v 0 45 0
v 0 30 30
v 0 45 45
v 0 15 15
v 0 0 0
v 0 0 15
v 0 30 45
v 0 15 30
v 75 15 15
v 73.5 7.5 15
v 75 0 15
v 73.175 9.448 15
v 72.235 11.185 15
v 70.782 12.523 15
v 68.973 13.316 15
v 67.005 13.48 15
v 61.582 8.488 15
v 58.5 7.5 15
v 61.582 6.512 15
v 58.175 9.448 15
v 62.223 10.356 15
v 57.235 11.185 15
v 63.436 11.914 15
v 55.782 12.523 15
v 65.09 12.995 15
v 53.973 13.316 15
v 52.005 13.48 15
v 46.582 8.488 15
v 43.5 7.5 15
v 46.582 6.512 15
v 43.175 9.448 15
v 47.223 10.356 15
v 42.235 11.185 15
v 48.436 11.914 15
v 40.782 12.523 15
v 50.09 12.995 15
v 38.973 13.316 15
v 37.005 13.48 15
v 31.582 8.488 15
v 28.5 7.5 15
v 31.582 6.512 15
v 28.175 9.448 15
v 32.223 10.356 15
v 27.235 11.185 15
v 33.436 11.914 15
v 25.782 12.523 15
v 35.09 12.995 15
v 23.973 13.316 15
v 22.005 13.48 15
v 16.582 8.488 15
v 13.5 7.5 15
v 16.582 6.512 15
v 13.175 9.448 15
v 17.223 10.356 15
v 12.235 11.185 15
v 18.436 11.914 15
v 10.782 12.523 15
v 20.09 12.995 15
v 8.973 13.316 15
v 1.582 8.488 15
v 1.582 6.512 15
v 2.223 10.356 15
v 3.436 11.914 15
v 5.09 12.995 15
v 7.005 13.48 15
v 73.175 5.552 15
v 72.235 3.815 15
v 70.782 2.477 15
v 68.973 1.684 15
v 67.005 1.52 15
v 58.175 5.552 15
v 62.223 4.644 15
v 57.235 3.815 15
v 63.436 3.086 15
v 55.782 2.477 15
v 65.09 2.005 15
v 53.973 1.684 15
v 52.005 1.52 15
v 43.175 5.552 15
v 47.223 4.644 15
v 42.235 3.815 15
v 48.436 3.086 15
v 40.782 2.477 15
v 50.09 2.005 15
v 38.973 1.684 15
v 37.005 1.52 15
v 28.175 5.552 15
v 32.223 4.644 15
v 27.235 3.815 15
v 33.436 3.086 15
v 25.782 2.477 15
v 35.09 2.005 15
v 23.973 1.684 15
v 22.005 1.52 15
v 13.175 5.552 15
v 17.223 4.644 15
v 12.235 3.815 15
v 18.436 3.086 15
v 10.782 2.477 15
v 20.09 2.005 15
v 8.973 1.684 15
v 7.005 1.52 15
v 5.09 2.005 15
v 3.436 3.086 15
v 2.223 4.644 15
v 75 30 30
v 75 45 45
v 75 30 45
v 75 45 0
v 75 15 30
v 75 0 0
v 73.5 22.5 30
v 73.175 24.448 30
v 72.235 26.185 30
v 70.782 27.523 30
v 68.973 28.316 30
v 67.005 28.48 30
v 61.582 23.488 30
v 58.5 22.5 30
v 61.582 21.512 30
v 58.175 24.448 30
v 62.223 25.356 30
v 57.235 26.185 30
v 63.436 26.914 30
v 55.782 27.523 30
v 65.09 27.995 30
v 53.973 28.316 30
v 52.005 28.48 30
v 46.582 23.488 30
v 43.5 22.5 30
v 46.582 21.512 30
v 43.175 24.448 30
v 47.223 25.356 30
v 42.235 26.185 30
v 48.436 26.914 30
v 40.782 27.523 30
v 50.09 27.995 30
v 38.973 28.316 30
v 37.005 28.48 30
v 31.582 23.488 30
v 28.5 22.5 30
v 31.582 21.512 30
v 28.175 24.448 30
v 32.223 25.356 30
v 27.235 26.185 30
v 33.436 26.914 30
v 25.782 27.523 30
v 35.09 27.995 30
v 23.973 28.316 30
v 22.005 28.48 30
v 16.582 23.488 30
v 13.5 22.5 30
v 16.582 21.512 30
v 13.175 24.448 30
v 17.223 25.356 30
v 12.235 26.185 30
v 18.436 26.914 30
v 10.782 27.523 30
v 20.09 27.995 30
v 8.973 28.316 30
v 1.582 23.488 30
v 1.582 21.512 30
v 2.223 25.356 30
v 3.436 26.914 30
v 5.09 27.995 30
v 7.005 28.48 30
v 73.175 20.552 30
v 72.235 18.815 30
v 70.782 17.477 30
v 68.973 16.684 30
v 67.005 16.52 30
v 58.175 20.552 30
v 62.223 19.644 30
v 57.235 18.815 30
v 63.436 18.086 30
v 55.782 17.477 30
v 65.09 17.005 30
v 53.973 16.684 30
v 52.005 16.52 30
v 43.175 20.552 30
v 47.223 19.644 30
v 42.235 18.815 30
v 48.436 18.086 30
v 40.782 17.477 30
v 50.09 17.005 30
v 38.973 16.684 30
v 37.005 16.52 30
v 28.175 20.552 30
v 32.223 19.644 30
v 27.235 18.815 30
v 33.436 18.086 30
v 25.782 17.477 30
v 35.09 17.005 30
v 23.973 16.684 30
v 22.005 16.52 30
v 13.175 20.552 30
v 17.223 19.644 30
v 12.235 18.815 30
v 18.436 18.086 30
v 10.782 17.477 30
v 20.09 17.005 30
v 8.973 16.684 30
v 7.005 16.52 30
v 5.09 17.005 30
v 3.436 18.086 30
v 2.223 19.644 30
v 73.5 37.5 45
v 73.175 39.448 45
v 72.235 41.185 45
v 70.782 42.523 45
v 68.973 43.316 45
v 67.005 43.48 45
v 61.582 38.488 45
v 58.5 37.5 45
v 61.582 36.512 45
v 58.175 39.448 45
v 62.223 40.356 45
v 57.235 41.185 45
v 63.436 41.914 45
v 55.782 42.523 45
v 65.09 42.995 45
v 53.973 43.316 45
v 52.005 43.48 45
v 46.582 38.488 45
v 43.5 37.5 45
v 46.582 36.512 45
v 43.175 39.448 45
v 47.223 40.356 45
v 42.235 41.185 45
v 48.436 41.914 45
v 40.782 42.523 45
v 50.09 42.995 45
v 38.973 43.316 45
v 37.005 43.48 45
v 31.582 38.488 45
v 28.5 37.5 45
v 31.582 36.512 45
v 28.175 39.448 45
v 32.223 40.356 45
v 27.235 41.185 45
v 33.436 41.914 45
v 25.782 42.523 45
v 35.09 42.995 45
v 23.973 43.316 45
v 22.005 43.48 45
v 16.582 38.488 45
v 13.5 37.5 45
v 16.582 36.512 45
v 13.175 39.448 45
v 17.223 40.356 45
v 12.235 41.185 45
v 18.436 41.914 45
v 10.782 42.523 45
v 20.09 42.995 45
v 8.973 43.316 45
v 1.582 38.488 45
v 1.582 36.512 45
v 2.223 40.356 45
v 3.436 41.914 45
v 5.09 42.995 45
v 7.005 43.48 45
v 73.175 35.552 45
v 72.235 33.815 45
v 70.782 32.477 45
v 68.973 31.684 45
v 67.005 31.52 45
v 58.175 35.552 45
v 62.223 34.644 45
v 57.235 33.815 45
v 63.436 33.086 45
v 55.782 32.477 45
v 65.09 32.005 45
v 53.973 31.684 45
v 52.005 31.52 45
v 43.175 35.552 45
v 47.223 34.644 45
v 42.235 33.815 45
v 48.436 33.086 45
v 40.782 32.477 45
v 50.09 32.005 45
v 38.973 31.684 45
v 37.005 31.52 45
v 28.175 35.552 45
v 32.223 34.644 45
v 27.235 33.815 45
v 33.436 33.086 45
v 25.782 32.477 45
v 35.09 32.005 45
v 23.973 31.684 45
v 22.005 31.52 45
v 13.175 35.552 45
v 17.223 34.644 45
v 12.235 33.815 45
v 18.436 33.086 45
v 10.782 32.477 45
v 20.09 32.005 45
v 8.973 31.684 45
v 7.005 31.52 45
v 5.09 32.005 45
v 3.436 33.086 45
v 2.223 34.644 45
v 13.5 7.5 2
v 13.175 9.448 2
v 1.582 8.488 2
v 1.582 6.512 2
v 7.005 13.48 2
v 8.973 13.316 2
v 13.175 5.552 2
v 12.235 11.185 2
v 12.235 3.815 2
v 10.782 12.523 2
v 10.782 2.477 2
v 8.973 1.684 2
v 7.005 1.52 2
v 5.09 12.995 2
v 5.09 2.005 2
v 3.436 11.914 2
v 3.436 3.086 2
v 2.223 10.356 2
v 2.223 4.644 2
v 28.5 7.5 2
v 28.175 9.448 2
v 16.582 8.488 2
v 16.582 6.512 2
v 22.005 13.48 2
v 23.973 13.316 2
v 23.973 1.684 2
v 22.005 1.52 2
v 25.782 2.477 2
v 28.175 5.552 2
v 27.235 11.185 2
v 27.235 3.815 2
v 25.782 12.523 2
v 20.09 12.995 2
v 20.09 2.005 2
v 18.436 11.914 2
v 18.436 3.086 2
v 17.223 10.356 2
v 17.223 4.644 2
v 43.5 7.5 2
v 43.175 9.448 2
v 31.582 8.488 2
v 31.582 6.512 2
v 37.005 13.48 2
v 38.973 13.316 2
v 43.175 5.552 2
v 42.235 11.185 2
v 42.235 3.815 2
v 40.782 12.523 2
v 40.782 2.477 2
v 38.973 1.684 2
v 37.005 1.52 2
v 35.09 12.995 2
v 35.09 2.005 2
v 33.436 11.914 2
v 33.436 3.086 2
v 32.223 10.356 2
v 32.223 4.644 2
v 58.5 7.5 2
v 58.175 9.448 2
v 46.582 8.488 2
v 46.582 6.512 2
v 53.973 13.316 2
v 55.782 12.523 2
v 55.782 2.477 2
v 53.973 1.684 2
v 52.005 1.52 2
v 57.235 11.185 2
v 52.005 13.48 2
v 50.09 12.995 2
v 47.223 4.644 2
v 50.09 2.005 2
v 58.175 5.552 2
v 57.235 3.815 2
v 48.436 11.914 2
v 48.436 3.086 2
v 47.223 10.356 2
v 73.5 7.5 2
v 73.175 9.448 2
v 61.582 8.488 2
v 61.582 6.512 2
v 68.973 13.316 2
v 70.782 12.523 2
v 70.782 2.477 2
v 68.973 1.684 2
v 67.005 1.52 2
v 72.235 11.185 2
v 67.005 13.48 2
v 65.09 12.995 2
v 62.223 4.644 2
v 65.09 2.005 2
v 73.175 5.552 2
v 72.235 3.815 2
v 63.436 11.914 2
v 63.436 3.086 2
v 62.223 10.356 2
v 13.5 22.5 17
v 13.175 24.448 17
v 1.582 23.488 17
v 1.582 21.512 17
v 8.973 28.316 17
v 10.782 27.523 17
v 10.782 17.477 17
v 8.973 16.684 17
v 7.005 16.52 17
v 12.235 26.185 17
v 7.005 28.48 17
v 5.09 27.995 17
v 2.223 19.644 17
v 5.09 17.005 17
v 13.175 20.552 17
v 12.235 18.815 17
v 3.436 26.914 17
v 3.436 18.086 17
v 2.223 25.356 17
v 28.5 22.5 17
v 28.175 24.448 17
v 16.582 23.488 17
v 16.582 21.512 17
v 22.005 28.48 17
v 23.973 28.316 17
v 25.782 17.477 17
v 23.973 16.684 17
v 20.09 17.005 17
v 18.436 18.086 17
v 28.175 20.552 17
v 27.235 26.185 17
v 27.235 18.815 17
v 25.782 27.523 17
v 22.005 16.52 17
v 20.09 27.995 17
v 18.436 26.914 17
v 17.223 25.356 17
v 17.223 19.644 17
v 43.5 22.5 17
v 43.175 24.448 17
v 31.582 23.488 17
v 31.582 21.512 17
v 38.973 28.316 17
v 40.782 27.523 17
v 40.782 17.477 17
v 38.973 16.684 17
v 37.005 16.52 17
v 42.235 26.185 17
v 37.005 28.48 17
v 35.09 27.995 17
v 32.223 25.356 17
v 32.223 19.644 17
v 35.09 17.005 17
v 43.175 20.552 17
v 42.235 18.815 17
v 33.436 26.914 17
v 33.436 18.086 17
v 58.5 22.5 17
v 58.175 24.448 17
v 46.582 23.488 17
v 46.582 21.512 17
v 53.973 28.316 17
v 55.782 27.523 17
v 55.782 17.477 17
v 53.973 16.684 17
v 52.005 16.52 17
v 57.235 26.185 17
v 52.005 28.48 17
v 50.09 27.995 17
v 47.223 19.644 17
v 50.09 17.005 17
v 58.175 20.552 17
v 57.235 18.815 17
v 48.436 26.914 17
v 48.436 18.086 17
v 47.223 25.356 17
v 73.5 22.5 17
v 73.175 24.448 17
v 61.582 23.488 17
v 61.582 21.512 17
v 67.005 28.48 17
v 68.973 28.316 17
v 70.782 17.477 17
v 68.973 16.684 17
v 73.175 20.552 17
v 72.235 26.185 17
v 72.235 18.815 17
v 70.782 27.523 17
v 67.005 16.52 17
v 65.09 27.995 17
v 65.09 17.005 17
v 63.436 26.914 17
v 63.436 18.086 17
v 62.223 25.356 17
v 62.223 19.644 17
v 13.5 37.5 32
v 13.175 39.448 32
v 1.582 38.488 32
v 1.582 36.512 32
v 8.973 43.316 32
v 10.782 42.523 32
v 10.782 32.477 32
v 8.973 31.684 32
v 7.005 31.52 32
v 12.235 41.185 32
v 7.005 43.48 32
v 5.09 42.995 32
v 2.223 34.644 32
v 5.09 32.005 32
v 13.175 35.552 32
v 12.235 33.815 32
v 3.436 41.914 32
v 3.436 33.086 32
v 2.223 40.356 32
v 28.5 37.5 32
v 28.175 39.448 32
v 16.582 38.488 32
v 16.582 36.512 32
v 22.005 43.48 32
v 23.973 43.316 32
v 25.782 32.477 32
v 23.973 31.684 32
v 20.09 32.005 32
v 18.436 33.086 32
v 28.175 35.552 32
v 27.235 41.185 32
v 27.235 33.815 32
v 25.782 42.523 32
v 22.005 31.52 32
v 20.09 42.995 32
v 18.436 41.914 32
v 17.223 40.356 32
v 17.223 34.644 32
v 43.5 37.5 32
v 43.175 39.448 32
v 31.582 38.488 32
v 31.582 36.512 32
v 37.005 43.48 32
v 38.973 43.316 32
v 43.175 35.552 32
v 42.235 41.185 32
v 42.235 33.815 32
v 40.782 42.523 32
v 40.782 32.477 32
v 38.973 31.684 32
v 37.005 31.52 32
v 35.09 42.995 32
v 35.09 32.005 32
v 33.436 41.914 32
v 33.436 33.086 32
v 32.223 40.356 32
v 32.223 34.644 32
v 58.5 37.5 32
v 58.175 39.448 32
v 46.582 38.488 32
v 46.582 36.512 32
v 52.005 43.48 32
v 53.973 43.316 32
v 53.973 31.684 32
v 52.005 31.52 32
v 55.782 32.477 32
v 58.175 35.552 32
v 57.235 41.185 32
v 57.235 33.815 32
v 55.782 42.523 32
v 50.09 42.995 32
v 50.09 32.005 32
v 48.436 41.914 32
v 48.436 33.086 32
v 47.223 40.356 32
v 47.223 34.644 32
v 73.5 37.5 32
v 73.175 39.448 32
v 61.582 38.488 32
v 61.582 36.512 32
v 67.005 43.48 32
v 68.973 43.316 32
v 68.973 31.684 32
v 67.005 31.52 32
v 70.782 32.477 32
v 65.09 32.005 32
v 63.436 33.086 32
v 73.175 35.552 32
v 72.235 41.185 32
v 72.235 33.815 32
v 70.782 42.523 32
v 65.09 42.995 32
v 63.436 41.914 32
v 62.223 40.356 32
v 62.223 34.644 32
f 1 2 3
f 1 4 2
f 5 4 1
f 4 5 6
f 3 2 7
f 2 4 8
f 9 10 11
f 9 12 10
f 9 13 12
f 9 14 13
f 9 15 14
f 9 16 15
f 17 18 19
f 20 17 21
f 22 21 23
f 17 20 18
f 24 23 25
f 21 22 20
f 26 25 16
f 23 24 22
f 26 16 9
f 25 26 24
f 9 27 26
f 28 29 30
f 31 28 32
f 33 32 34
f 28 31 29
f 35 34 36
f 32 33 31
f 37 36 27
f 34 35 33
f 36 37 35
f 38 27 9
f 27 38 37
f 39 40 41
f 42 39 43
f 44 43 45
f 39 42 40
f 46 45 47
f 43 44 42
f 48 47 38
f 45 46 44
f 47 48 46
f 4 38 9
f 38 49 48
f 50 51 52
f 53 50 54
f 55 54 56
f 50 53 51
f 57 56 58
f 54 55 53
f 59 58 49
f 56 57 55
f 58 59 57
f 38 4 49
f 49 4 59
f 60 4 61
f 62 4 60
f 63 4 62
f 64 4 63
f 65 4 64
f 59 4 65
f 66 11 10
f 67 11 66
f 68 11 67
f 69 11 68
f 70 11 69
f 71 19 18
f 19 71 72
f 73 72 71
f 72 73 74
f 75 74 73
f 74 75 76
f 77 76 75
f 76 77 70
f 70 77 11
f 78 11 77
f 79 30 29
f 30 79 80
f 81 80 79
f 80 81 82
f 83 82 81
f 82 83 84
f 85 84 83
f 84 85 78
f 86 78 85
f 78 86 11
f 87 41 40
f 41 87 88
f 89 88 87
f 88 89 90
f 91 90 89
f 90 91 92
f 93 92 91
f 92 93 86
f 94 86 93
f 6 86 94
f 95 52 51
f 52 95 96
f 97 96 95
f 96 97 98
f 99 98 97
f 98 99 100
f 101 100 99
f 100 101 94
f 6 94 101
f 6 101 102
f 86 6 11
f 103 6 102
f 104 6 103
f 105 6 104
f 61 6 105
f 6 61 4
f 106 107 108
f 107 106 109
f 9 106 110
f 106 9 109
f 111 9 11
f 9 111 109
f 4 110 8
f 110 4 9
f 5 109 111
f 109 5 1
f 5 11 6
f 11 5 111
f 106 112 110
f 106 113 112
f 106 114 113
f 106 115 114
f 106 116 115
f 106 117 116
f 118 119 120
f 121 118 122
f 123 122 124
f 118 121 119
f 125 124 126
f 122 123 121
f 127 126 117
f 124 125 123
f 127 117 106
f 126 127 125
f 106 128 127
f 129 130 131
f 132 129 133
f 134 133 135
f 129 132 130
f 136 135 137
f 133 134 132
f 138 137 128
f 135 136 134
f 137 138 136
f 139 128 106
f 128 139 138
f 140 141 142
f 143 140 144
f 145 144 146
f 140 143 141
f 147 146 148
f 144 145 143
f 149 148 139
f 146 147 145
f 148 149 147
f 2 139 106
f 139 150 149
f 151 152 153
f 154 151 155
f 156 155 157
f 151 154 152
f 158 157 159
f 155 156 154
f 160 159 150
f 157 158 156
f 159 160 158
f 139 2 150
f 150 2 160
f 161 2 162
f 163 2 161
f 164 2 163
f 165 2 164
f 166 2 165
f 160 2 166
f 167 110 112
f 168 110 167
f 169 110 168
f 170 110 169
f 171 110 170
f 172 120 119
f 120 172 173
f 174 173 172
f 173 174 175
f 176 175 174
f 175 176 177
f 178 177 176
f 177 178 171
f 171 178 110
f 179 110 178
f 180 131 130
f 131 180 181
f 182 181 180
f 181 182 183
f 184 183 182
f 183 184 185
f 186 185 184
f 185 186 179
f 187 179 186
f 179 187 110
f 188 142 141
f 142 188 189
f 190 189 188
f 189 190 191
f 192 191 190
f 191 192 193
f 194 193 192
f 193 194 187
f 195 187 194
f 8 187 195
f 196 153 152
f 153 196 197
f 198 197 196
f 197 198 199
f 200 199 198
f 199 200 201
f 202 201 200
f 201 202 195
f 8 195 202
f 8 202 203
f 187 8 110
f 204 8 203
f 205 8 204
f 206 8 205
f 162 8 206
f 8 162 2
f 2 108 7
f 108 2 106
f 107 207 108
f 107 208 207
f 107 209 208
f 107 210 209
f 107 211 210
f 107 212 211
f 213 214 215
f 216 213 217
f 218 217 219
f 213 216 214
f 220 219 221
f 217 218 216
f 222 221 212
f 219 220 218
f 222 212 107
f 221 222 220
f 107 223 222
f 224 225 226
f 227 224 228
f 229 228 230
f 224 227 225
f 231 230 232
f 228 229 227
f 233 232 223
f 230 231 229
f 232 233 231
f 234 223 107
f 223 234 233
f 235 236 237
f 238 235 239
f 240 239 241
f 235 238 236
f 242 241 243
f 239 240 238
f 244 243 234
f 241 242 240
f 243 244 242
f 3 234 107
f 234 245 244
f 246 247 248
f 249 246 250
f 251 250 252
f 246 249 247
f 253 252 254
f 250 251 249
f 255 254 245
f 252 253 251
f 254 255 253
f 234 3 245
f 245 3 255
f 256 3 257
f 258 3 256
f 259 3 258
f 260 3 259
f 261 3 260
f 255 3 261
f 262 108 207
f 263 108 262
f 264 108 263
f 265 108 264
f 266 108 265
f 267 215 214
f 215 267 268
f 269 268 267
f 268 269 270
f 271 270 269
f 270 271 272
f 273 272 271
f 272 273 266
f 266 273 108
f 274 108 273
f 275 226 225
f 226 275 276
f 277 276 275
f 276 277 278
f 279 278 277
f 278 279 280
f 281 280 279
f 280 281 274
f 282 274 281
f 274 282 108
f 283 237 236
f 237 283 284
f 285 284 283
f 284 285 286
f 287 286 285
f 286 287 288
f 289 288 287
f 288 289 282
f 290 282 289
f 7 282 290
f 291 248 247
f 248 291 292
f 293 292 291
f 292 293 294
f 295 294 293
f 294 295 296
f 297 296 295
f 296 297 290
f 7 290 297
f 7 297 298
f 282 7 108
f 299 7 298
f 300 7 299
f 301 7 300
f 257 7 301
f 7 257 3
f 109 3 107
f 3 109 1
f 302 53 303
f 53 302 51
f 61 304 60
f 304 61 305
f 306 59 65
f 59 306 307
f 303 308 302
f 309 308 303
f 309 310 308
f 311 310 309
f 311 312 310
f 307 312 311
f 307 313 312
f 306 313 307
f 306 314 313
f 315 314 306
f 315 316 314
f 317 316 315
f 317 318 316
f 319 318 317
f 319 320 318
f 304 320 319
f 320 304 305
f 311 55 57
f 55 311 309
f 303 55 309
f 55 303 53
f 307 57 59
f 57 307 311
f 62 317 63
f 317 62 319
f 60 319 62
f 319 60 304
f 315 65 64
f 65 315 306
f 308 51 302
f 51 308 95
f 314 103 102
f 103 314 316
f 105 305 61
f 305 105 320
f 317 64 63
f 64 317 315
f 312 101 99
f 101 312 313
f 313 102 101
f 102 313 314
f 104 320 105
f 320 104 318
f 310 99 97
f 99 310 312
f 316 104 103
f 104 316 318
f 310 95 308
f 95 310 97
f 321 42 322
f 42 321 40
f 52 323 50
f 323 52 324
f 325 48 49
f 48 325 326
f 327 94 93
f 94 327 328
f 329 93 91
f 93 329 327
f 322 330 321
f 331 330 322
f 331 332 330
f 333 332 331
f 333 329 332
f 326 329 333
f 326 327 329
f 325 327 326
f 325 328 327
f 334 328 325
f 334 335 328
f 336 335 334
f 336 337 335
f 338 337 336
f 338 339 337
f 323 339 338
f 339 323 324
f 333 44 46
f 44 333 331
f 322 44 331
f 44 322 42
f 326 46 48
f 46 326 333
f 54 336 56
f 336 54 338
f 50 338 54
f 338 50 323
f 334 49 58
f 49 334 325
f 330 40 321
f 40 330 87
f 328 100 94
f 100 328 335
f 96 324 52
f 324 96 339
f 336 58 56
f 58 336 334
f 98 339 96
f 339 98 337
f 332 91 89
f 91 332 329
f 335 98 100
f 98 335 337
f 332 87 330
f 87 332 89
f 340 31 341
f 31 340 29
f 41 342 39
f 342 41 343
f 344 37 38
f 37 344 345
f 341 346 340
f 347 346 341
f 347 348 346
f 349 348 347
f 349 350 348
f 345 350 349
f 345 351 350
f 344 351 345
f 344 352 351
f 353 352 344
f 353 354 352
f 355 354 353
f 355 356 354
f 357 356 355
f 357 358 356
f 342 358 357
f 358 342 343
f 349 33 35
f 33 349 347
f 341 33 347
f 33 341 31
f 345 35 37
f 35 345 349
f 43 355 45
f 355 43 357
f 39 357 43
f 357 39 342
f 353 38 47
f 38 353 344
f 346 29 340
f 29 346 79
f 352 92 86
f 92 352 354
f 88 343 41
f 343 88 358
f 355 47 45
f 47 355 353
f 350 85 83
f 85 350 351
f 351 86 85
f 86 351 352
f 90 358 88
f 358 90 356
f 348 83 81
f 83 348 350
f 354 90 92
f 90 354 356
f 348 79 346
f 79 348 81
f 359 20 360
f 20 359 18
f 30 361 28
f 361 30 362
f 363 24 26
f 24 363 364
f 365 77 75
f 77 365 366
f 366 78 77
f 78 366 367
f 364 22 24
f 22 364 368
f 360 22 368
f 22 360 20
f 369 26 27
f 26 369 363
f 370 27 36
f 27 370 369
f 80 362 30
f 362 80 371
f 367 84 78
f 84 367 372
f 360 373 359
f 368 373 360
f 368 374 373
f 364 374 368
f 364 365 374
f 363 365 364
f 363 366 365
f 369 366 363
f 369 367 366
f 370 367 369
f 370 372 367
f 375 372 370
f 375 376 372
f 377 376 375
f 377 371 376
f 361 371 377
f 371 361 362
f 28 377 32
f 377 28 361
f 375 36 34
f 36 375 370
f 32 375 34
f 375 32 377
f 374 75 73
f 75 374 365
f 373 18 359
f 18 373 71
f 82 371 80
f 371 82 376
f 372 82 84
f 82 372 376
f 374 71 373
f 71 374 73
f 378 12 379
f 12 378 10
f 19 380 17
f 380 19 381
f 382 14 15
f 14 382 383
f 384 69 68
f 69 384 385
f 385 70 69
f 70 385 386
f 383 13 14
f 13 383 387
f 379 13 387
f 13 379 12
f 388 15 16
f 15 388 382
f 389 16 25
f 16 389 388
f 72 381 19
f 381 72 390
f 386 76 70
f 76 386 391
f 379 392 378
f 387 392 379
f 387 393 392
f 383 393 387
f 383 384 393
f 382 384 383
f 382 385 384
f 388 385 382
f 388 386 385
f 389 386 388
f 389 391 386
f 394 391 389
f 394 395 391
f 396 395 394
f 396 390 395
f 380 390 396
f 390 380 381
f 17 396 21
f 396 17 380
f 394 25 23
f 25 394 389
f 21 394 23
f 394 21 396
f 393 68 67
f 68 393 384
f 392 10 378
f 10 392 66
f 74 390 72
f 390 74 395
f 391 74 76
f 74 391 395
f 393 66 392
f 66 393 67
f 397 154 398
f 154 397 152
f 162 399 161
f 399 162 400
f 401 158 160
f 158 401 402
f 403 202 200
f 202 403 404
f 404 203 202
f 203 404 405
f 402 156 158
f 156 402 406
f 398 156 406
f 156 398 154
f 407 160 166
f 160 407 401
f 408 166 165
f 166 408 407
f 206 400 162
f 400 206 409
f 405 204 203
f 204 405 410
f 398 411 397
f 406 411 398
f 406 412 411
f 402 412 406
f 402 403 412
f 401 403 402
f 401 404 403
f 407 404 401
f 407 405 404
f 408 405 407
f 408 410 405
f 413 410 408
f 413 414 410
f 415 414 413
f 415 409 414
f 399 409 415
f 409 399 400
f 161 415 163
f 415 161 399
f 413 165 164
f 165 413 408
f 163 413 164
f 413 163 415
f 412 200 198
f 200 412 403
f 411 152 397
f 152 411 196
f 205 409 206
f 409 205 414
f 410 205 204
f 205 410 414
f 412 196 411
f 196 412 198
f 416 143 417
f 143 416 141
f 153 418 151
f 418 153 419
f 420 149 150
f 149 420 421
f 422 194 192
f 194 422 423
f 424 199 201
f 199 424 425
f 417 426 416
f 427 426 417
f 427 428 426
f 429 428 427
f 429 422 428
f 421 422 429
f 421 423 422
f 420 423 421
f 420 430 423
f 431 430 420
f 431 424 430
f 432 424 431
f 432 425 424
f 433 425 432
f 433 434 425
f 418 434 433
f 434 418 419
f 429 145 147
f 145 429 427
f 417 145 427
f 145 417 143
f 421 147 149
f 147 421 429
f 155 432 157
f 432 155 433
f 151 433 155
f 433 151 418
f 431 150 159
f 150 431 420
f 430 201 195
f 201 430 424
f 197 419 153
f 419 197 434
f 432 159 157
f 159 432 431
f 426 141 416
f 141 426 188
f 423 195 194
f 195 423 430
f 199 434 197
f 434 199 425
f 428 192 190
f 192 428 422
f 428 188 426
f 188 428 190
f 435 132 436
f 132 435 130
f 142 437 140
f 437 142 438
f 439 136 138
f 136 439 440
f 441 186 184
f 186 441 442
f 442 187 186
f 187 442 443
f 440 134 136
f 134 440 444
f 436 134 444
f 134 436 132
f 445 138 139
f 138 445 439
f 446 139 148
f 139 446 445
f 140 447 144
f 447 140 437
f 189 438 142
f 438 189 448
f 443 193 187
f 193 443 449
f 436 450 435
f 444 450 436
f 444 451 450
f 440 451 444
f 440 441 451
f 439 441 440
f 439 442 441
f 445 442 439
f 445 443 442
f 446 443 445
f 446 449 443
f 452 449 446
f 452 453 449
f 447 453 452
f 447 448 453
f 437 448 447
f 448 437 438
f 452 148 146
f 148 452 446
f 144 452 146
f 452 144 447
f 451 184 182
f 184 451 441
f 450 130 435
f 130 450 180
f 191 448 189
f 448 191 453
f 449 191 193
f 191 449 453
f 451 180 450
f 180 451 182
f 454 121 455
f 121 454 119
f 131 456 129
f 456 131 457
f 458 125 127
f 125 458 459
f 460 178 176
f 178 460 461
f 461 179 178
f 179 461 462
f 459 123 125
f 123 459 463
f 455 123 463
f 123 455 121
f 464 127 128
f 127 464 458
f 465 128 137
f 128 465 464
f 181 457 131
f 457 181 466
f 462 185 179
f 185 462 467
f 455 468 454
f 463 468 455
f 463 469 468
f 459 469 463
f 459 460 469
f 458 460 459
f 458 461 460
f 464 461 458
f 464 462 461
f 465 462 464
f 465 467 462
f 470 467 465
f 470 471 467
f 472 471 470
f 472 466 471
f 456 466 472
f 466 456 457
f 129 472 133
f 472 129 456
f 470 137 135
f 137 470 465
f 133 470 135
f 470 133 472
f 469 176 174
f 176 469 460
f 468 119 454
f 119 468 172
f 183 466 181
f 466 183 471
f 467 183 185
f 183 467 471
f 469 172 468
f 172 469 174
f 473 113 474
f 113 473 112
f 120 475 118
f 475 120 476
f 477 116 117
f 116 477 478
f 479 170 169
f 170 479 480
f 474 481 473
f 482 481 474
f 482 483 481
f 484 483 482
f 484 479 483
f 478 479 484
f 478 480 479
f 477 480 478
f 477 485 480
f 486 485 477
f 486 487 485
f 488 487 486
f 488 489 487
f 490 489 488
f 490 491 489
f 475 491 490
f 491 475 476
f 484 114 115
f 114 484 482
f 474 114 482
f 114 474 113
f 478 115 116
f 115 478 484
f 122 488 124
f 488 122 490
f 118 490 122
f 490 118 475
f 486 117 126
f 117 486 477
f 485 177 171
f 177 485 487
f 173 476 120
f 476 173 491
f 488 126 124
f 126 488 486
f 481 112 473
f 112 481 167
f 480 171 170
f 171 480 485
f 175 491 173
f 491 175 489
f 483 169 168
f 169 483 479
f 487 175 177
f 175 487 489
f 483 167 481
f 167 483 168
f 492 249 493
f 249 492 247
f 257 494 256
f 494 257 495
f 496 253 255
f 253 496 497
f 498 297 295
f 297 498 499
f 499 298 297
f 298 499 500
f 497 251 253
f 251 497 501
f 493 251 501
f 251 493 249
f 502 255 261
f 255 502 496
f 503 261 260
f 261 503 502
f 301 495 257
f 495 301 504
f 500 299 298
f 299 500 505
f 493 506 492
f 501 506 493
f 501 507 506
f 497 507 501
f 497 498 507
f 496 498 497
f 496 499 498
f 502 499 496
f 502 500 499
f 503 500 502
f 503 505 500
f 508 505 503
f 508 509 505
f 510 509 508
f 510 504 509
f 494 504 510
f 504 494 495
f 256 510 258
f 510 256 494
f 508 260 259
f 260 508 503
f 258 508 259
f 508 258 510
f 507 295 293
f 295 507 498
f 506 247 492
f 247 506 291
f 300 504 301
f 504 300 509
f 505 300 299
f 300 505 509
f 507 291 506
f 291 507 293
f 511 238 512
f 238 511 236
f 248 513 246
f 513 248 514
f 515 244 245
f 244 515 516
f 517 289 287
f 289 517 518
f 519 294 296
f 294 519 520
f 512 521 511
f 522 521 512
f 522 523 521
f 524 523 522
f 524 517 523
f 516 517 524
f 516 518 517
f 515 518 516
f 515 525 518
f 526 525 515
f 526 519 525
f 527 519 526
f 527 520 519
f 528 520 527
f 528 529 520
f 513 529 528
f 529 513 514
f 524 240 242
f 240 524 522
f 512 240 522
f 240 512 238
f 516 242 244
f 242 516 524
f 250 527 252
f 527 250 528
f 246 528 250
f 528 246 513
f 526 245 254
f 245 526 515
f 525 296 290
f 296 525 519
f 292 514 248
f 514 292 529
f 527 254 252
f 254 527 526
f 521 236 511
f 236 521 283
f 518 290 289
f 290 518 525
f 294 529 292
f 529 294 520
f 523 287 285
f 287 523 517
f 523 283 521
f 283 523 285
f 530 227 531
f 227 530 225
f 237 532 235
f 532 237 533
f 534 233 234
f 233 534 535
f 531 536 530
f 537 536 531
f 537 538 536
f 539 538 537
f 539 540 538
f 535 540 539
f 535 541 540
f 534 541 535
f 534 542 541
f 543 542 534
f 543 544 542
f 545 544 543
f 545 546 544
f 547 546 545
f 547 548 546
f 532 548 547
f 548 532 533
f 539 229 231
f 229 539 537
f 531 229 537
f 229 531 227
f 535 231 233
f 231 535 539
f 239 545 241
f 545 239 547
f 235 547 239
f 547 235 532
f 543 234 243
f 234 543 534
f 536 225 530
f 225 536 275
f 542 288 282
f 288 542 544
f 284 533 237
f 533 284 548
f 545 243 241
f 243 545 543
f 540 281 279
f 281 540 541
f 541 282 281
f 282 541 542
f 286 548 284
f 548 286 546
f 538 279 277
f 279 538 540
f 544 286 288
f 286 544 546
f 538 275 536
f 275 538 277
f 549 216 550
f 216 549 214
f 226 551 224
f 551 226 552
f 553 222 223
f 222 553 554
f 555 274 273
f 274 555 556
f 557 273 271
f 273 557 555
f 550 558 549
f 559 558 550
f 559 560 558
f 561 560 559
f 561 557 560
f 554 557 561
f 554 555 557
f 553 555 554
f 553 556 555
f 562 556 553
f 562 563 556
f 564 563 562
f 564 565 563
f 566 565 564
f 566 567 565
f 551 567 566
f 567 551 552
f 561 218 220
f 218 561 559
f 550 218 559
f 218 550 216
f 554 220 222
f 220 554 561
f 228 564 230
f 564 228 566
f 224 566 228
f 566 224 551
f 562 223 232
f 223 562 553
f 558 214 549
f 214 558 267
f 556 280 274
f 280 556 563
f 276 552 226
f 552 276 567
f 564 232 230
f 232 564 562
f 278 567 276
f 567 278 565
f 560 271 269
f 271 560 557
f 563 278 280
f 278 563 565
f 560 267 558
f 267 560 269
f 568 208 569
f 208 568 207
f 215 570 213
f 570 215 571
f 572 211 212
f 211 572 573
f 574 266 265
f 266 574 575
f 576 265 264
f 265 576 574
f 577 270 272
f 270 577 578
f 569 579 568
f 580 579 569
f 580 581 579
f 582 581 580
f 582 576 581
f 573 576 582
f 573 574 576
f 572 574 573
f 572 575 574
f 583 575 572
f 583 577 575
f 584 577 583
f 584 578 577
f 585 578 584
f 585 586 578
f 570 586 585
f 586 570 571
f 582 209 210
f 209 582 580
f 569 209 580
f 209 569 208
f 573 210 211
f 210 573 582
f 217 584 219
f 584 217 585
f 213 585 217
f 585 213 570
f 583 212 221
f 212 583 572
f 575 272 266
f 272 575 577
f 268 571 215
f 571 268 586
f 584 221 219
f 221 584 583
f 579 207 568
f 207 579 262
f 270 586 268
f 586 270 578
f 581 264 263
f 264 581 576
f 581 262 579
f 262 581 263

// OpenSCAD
CUBE_EDGE = 15;
CUBES_PER_ROW = 5;
HOLE_RADIUS = 6;
HOLE_DEPTH_OFFSET = 2;
STEPS = 3;

module stairs()
  for(i=[0:STEPS-1])
    translate([0,i*CUBE_EDGE,0])
      cube([CUBE_EDGE * CUBES_PER_ROW,
            CUBE_EDGE,
            (i+1) * CUBE_EDGE
           ]);

module holes()
  for(i=[0: STEPS - 1])
    for(j=[0: CUBES_PER_ROW - 1])
      translate([CUBE_EDGE/2 + j*CUBE_EDGE,
                 CUBE_EDGE/2 + i*CUBE_EDGE,
                 HOLE_DEPTH_OFFSET + i*CUBE_EDGE
                ])
        cylinder(CUBE_EDGE*2, HOLE_RADIUS, HOLE_RADIUS);

difference(){
  stairs();
  holes();
}
